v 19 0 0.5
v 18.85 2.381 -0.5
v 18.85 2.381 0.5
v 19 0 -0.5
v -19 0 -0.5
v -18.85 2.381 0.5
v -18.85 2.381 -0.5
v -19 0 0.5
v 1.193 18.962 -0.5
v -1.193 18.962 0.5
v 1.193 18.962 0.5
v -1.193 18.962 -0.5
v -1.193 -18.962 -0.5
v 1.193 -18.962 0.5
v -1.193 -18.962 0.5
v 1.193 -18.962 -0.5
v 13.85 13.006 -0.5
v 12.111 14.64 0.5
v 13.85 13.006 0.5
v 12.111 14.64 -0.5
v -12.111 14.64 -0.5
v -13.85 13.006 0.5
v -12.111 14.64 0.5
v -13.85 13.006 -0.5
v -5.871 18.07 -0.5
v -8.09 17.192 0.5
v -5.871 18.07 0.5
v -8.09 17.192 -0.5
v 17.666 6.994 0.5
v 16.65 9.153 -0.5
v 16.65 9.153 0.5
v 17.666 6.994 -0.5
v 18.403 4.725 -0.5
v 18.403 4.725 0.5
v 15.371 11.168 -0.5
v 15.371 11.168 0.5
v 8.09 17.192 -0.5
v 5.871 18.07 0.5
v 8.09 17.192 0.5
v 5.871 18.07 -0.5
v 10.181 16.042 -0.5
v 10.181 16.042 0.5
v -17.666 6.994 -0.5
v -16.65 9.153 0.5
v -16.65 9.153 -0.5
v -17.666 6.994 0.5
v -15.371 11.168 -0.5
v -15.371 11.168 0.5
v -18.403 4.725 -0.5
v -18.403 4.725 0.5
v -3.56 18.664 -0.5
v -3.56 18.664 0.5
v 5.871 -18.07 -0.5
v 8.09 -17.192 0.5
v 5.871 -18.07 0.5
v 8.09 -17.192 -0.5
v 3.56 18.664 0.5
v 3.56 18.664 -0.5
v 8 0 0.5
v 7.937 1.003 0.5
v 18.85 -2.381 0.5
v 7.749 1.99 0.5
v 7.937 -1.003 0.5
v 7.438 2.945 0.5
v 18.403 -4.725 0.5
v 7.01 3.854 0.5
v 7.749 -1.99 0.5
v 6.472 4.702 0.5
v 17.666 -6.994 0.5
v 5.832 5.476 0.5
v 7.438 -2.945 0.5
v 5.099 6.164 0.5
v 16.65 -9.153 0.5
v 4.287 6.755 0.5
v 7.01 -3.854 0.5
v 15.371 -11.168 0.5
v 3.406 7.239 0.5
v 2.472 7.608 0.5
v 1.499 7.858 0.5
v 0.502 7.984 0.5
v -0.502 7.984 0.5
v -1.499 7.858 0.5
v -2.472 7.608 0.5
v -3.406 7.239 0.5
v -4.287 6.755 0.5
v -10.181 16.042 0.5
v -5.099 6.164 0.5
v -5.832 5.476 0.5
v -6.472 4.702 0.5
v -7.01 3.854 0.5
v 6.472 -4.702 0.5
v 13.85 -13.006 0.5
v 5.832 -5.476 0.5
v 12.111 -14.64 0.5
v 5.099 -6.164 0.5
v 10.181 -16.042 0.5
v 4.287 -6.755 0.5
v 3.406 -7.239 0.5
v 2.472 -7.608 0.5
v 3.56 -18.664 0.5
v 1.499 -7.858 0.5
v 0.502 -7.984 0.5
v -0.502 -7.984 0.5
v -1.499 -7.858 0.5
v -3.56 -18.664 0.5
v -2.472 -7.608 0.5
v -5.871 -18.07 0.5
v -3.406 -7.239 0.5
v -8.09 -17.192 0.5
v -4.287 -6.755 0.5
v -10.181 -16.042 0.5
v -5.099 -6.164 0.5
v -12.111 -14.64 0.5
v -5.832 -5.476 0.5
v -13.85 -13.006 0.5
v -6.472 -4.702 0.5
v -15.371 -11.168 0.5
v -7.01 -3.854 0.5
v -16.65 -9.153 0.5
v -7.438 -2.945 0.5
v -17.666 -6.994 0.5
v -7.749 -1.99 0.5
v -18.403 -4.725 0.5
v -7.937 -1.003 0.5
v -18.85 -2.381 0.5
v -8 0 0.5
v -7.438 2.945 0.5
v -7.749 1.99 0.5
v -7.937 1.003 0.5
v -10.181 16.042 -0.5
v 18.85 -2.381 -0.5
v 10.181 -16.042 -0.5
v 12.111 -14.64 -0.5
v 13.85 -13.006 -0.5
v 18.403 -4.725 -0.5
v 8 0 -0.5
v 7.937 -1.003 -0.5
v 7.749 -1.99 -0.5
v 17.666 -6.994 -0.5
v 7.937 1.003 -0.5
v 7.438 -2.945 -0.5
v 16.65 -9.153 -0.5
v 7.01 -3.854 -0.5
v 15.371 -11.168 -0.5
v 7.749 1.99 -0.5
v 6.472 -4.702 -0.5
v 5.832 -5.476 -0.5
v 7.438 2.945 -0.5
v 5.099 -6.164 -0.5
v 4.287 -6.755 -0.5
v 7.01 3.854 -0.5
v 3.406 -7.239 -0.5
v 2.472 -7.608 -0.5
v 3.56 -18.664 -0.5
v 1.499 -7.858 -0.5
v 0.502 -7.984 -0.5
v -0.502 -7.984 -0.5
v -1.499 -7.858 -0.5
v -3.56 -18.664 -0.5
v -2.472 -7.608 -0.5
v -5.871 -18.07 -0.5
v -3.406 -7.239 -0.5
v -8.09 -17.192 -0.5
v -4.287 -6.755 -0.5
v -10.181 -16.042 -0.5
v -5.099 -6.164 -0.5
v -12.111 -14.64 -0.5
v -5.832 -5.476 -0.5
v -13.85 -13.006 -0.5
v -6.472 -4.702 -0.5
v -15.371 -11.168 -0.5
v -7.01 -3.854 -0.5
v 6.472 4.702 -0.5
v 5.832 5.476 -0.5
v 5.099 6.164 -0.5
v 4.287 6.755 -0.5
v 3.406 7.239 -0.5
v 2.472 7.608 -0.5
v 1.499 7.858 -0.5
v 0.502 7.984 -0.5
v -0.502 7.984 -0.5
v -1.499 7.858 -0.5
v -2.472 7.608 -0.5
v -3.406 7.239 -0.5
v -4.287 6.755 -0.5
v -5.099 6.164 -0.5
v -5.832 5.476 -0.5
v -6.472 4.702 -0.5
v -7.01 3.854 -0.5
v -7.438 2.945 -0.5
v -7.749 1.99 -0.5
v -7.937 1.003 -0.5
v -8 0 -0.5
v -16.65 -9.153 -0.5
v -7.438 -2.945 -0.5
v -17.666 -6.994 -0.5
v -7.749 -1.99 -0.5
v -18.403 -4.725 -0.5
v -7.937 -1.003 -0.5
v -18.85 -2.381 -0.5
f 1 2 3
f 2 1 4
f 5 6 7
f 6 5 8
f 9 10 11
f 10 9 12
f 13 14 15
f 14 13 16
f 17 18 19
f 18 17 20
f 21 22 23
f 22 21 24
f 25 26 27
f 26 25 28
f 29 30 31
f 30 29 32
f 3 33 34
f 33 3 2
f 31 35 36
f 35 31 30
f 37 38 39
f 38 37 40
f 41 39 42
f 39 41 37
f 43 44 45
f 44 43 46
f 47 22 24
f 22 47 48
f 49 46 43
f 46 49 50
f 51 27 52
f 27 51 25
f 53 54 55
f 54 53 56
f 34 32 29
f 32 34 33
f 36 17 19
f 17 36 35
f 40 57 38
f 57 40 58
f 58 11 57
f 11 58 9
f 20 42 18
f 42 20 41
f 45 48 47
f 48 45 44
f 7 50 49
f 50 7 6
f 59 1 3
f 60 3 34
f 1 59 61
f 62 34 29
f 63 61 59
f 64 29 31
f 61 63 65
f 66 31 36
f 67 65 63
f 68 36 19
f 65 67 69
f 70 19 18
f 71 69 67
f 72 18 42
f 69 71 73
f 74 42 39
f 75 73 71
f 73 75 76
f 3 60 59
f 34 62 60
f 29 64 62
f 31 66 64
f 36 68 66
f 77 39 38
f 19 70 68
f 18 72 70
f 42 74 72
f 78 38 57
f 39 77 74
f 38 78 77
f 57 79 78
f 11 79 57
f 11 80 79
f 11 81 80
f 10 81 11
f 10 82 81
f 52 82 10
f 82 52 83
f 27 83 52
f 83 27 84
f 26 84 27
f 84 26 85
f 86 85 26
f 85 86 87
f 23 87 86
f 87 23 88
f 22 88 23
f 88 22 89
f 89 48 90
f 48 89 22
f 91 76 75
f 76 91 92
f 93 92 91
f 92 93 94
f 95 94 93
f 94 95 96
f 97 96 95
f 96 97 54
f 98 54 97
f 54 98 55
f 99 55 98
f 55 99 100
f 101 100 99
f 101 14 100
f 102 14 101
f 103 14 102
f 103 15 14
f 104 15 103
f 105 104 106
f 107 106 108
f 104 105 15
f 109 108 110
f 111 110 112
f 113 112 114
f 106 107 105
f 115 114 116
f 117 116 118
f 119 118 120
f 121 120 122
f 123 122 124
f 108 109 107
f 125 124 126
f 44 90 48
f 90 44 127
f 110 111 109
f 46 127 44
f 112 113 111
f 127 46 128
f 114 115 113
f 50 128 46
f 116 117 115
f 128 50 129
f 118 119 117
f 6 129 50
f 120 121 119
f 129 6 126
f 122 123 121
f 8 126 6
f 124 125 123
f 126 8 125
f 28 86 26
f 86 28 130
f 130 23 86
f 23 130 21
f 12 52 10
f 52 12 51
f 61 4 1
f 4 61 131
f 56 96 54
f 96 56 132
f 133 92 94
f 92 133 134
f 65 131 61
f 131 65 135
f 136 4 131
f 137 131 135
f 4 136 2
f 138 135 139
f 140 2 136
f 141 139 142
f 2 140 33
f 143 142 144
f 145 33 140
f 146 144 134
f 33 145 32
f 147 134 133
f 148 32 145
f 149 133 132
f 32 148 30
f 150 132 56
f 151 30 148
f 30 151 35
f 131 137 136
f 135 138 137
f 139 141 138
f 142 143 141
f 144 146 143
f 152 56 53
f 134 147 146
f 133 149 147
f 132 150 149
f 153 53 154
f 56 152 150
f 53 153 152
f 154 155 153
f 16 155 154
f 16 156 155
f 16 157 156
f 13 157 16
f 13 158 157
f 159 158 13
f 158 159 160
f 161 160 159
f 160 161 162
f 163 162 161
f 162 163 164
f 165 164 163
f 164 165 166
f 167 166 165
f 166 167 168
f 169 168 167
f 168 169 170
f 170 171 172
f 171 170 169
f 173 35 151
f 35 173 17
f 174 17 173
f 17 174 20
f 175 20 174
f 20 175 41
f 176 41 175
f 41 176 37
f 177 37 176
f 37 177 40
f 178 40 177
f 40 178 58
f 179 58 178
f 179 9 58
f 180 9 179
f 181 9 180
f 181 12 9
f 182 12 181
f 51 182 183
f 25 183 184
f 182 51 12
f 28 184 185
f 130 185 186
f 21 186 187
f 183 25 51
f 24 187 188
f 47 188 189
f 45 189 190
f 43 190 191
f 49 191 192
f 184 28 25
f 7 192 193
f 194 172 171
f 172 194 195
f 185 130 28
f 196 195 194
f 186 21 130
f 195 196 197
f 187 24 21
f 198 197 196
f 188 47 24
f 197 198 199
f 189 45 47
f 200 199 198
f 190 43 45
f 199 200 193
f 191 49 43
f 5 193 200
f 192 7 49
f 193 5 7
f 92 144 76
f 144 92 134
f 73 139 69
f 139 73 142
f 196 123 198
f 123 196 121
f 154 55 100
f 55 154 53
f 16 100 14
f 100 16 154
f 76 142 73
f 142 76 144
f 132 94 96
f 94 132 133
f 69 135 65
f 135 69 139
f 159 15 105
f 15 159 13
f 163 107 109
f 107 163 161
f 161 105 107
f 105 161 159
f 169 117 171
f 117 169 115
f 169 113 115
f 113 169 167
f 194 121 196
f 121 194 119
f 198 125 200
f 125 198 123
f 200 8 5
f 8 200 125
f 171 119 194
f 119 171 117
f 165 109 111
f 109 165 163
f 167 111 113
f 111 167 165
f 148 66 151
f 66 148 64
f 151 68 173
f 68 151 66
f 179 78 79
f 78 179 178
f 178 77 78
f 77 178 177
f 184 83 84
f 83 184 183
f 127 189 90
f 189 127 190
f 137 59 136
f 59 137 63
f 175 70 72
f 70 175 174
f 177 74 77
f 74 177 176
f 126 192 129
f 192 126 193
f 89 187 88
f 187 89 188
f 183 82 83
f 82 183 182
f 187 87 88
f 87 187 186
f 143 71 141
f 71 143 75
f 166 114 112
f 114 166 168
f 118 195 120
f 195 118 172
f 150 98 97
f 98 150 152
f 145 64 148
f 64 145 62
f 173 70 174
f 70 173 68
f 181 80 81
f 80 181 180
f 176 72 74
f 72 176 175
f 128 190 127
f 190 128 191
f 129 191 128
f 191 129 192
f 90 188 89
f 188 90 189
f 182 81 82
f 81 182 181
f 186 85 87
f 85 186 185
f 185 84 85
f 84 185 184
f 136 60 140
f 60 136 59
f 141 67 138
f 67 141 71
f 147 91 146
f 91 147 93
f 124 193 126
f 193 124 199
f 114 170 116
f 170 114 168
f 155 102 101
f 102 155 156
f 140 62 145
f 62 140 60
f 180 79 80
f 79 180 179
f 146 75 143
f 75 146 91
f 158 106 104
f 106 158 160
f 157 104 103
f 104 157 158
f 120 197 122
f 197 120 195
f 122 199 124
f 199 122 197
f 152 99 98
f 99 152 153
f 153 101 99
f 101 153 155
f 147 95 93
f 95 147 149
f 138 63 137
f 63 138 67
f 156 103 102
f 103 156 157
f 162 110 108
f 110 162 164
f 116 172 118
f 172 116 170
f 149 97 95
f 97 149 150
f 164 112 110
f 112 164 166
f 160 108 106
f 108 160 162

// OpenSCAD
$fn = 50;


difference() {
	union() {
		translate(v = [0, 0, -0.5000000000]) {
			cylinder(h = 1, r = 19.0000000000);
		}
	}
	union() {
		translate(v = [0, 0, -100.0000000000]) {
			cylinder(h = 200, r = 8);
		}
	}
}
